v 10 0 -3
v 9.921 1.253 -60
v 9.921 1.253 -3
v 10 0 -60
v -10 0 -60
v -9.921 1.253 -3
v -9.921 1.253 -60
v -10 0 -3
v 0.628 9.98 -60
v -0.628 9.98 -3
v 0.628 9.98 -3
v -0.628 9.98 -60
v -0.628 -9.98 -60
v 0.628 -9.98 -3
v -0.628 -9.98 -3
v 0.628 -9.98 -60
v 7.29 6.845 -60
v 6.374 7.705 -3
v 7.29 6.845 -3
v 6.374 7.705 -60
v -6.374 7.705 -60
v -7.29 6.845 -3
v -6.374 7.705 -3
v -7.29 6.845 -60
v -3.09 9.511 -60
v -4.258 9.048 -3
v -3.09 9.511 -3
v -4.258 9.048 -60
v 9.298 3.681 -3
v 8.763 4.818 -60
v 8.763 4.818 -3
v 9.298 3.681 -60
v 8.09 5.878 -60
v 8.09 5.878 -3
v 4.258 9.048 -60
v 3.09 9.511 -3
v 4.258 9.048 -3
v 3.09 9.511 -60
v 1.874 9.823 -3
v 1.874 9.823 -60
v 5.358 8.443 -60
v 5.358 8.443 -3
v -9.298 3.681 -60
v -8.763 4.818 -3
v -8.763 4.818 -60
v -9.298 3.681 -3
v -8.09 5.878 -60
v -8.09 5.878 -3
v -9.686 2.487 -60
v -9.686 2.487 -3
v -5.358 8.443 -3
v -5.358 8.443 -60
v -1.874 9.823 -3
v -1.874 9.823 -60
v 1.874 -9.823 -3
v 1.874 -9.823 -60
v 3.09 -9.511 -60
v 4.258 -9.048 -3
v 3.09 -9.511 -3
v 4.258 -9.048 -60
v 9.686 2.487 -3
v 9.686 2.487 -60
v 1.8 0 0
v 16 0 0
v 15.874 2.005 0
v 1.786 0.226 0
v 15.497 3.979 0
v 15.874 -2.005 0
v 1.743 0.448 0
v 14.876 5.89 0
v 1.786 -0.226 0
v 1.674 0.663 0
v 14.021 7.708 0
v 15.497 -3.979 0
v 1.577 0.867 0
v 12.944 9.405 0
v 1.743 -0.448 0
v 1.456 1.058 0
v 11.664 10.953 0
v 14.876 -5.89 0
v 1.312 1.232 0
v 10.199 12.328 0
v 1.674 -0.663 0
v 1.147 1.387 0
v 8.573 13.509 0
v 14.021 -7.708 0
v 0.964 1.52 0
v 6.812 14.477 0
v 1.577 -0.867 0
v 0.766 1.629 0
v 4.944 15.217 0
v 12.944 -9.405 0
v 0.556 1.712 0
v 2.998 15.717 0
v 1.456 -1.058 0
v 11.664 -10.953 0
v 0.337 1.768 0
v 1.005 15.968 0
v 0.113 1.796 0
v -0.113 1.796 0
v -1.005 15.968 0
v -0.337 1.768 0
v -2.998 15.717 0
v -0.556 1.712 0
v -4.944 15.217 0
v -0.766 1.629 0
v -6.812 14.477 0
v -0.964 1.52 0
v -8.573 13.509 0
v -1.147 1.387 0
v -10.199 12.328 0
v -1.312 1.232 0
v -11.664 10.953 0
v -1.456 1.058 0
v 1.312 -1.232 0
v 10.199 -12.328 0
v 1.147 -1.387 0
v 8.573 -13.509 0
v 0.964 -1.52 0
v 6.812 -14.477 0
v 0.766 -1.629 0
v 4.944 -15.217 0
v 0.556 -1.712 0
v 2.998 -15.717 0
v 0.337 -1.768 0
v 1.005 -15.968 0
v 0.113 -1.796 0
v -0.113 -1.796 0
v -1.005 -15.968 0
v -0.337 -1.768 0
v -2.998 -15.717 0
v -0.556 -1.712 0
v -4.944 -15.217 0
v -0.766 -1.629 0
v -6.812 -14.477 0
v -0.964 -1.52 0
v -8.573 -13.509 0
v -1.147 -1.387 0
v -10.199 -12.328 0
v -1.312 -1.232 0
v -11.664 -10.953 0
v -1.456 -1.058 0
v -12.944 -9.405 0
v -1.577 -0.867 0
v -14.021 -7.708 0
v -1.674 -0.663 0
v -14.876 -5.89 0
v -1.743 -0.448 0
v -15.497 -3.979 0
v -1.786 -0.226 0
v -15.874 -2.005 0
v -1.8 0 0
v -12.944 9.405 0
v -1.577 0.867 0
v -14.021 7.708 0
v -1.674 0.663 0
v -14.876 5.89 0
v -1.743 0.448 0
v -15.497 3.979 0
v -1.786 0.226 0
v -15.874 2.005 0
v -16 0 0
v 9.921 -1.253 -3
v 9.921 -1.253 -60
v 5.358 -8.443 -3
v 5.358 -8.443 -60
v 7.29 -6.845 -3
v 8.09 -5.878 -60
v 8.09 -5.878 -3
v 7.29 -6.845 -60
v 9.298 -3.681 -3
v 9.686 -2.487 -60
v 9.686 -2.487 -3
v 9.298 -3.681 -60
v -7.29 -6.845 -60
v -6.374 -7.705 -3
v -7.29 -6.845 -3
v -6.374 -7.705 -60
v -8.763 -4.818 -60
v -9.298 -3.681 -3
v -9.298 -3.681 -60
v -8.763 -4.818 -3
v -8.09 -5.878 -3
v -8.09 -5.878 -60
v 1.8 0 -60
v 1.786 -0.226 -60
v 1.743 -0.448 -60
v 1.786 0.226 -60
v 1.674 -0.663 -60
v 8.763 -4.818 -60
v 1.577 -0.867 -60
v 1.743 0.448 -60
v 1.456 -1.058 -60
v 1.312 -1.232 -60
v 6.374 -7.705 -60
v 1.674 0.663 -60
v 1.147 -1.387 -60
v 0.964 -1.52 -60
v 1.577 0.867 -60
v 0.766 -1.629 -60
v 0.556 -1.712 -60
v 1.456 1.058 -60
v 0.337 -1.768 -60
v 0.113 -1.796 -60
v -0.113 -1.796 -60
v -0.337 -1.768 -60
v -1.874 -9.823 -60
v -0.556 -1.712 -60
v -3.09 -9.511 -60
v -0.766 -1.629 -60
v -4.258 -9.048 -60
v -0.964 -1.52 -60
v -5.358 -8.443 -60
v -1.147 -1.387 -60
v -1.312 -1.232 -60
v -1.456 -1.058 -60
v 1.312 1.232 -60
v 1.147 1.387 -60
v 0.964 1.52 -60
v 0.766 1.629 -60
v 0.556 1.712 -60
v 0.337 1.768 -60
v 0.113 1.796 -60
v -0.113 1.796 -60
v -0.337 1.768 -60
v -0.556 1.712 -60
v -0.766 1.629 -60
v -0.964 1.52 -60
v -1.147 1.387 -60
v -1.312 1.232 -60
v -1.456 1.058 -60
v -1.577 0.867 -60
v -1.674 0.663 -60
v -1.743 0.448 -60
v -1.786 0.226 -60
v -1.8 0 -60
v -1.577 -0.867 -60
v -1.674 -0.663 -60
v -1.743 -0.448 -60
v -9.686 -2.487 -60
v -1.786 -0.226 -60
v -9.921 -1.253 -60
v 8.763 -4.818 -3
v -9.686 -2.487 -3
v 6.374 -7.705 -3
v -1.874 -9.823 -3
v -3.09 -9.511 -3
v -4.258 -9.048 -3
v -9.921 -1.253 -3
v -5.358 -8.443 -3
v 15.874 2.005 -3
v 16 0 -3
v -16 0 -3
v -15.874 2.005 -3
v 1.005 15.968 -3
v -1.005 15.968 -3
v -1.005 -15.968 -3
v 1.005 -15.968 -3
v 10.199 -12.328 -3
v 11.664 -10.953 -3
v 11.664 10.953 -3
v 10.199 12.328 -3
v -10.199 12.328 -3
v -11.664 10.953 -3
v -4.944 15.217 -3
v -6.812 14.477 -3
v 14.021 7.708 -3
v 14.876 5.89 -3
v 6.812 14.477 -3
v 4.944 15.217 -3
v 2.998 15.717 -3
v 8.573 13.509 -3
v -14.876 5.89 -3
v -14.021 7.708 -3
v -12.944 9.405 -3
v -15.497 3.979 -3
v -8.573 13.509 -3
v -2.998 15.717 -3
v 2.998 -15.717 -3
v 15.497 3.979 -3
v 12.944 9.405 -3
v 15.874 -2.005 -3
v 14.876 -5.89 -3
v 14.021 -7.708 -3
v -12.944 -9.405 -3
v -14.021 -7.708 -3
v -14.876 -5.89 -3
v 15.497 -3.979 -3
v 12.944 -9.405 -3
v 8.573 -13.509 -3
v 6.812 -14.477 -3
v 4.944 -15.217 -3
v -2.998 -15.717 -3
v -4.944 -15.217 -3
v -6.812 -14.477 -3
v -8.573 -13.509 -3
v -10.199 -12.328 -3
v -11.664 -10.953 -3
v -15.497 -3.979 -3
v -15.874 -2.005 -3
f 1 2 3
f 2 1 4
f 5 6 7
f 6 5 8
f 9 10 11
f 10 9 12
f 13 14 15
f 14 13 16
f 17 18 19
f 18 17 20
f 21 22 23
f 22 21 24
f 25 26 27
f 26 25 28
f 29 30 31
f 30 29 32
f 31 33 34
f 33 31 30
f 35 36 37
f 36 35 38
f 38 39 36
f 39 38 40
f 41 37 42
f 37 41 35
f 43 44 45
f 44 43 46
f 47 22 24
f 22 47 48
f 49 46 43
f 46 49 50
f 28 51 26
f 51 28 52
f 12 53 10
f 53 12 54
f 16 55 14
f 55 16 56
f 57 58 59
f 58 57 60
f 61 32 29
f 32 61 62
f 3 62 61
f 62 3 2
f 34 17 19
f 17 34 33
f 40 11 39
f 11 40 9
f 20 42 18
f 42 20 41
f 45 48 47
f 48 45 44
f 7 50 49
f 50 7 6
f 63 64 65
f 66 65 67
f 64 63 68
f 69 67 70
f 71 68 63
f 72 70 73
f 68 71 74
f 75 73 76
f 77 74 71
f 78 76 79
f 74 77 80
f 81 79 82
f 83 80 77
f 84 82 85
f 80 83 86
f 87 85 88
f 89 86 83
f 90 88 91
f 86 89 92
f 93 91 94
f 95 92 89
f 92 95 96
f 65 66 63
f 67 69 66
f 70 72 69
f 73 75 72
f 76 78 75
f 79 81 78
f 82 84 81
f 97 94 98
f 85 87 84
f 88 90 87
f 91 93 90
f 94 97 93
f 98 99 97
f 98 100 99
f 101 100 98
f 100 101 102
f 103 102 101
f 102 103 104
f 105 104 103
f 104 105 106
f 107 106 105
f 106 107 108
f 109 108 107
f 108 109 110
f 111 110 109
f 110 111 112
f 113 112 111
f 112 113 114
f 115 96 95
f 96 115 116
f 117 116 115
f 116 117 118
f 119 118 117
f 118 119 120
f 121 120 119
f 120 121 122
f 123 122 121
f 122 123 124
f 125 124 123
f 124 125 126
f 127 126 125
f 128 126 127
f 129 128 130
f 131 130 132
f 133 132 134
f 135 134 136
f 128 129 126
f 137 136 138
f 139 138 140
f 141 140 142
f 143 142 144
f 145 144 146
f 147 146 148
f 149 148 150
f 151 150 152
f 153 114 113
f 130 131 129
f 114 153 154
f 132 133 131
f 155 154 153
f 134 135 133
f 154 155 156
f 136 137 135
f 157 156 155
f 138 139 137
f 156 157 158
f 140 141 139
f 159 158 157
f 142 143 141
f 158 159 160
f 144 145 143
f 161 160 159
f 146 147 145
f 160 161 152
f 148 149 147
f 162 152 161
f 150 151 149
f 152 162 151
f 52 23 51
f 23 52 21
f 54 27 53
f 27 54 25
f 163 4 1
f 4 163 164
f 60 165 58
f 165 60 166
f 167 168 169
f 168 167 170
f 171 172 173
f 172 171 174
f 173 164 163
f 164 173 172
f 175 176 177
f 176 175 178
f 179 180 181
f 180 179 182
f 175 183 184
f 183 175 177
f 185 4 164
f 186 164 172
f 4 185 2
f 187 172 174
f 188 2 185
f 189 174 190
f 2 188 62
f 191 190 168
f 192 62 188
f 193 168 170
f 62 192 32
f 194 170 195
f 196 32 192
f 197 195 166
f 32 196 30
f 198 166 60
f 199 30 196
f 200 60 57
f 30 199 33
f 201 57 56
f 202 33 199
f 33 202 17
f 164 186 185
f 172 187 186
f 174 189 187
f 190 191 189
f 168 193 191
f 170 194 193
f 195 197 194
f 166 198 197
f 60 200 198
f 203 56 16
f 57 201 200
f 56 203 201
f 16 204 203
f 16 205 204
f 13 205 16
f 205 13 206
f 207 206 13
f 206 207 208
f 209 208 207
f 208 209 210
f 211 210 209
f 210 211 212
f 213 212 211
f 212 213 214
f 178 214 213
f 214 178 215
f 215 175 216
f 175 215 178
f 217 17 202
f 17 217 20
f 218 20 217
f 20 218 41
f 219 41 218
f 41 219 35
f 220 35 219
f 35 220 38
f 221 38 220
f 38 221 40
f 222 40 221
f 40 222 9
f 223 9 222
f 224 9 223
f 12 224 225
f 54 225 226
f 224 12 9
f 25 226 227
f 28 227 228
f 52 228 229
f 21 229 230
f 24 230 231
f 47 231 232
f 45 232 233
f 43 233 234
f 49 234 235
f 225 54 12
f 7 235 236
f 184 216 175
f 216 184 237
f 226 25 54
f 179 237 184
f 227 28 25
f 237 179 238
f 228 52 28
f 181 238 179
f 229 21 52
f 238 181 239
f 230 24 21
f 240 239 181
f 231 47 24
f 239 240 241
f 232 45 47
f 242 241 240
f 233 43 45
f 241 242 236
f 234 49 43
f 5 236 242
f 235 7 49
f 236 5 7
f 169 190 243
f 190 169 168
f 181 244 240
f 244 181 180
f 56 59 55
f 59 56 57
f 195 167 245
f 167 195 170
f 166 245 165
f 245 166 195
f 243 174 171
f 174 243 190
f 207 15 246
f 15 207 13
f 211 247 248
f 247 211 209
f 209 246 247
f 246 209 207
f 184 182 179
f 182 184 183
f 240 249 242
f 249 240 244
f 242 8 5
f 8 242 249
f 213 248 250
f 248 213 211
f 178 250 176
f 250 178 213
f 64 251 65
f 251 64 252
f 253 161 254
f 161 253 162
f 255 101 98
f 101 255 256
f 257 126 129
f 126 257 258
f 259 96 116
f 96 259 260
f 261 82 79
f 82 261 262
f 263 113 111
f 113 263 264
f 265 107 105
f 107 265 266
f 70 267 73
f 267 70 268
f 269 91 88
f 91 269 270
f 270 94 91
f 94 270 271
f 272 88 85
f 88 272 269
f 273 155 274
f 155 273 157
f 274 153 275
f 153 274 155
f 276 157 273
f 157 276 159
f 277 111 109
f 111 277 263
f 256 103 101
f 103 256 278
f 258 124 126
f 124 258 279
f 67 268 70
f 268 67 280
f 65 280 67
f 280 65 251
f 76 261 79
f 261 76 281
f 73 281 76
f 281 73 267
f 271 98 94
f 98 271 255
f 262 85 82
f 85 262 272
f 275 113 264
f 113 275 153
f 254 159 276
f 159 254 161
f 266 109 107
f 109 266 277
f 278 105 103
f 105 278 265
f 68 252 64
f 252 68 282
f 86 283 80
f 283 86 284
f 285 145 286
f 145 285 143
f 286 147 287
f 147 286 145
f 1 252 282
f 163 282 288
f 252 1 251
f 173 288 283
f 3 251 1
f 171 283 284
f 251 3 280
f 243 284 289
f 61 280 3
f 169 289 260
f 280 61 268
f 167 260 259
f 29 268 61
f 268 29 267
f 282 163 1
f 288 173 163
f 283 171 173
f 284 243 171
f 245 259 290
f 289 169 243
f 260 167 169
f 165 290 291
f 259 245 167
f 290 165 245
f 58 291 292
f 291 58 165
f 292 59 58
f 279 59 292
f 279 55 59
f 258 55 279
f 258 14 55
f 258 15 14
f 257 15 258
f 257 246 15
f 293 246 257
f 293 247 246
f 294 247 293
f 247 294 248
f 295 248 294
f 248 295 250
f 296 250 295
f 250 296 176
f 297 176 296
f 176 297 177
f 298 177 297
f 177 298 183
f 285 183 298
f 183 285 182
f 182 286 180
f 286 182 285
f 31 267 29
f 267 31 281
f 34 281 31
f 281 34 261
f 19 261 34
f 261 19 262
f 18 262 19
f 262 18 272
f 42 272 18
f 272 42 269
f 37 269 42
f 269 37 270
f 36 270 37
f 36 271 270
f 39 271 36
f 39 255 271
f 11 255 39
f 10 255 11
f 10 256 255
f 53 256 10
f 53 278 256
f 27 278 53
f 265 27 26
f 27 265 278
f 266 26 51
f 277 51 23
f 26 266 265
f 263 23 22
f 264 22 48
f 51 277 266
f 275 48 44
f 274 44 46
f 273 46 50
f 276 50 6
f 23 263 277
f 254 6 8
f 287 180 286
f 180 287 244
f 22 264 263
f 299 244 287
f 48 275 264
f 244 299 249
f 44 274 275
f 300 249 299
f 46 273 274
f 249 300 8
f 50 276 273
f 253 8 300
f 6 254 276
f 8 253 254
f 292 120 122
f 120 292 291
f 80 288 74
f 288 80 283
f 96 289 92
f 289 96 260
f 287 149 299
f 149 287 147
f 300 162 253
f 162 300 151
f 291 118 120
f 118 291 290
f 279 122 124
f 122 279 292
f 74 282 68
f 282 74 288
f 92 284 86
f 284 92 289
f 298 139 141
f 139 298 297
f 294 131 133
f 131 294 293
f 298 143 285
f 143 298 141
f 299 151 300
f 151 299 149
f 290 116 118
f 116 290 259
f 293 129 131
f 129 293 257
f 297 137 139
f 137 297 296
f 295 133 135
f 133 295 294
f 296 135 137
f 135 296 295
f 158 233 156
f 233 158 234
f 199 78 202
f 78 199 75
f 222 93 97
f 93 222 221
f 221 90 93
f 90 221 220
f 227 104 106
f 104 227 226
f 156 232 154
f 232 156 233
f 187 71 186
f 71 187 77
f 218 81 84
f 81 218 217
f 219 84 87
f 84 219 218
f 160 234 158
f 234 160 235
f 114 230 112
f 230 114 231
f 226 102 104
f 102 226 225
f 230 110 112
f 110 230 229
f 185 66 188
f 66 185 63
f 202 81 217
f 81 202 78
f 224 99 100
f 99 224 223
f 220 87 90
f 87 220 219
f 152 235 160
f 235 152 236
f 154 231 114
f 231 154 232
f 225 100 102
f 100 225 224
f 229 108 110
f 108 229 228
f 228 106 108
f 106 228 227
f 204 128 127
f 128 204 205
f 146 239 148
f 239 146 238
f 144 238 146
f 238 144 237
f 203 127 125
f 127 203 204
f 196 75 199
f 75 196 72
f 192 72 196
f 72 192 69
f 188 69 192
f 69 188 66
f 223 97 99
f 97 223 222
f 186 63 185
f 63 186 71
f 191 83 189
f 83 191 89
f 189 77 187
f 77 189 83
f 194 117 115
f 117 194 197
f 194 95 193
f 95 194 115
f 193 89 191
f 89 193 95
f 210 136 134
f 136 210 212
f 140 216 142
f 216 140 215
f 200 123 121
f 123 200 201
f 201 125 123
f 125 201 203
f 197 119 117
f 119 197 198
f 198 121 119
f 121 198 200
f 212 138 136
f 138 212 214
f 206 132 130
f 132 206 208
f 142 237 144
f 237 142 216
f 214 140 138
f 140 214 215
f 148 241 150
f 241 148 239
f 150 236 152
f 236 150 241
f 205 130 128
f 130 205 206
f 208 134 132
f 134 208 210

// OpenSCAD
$fn = 50;


difference() {
	union() {
		translate(v = [0, 0, -60.0000000000]) {
			cylinder(h = 60, r = 10.0000000000);
		}
		translate(v = [0, 0, -3.0000000000]) {
			cylinder(h = 3, r = 16.0000000000);
		}
	}
	union() {
		#translate(v = [0, 0, -60]) {
			cylinder(h = 60, r = 1.8000000000);
		}
	}
}
